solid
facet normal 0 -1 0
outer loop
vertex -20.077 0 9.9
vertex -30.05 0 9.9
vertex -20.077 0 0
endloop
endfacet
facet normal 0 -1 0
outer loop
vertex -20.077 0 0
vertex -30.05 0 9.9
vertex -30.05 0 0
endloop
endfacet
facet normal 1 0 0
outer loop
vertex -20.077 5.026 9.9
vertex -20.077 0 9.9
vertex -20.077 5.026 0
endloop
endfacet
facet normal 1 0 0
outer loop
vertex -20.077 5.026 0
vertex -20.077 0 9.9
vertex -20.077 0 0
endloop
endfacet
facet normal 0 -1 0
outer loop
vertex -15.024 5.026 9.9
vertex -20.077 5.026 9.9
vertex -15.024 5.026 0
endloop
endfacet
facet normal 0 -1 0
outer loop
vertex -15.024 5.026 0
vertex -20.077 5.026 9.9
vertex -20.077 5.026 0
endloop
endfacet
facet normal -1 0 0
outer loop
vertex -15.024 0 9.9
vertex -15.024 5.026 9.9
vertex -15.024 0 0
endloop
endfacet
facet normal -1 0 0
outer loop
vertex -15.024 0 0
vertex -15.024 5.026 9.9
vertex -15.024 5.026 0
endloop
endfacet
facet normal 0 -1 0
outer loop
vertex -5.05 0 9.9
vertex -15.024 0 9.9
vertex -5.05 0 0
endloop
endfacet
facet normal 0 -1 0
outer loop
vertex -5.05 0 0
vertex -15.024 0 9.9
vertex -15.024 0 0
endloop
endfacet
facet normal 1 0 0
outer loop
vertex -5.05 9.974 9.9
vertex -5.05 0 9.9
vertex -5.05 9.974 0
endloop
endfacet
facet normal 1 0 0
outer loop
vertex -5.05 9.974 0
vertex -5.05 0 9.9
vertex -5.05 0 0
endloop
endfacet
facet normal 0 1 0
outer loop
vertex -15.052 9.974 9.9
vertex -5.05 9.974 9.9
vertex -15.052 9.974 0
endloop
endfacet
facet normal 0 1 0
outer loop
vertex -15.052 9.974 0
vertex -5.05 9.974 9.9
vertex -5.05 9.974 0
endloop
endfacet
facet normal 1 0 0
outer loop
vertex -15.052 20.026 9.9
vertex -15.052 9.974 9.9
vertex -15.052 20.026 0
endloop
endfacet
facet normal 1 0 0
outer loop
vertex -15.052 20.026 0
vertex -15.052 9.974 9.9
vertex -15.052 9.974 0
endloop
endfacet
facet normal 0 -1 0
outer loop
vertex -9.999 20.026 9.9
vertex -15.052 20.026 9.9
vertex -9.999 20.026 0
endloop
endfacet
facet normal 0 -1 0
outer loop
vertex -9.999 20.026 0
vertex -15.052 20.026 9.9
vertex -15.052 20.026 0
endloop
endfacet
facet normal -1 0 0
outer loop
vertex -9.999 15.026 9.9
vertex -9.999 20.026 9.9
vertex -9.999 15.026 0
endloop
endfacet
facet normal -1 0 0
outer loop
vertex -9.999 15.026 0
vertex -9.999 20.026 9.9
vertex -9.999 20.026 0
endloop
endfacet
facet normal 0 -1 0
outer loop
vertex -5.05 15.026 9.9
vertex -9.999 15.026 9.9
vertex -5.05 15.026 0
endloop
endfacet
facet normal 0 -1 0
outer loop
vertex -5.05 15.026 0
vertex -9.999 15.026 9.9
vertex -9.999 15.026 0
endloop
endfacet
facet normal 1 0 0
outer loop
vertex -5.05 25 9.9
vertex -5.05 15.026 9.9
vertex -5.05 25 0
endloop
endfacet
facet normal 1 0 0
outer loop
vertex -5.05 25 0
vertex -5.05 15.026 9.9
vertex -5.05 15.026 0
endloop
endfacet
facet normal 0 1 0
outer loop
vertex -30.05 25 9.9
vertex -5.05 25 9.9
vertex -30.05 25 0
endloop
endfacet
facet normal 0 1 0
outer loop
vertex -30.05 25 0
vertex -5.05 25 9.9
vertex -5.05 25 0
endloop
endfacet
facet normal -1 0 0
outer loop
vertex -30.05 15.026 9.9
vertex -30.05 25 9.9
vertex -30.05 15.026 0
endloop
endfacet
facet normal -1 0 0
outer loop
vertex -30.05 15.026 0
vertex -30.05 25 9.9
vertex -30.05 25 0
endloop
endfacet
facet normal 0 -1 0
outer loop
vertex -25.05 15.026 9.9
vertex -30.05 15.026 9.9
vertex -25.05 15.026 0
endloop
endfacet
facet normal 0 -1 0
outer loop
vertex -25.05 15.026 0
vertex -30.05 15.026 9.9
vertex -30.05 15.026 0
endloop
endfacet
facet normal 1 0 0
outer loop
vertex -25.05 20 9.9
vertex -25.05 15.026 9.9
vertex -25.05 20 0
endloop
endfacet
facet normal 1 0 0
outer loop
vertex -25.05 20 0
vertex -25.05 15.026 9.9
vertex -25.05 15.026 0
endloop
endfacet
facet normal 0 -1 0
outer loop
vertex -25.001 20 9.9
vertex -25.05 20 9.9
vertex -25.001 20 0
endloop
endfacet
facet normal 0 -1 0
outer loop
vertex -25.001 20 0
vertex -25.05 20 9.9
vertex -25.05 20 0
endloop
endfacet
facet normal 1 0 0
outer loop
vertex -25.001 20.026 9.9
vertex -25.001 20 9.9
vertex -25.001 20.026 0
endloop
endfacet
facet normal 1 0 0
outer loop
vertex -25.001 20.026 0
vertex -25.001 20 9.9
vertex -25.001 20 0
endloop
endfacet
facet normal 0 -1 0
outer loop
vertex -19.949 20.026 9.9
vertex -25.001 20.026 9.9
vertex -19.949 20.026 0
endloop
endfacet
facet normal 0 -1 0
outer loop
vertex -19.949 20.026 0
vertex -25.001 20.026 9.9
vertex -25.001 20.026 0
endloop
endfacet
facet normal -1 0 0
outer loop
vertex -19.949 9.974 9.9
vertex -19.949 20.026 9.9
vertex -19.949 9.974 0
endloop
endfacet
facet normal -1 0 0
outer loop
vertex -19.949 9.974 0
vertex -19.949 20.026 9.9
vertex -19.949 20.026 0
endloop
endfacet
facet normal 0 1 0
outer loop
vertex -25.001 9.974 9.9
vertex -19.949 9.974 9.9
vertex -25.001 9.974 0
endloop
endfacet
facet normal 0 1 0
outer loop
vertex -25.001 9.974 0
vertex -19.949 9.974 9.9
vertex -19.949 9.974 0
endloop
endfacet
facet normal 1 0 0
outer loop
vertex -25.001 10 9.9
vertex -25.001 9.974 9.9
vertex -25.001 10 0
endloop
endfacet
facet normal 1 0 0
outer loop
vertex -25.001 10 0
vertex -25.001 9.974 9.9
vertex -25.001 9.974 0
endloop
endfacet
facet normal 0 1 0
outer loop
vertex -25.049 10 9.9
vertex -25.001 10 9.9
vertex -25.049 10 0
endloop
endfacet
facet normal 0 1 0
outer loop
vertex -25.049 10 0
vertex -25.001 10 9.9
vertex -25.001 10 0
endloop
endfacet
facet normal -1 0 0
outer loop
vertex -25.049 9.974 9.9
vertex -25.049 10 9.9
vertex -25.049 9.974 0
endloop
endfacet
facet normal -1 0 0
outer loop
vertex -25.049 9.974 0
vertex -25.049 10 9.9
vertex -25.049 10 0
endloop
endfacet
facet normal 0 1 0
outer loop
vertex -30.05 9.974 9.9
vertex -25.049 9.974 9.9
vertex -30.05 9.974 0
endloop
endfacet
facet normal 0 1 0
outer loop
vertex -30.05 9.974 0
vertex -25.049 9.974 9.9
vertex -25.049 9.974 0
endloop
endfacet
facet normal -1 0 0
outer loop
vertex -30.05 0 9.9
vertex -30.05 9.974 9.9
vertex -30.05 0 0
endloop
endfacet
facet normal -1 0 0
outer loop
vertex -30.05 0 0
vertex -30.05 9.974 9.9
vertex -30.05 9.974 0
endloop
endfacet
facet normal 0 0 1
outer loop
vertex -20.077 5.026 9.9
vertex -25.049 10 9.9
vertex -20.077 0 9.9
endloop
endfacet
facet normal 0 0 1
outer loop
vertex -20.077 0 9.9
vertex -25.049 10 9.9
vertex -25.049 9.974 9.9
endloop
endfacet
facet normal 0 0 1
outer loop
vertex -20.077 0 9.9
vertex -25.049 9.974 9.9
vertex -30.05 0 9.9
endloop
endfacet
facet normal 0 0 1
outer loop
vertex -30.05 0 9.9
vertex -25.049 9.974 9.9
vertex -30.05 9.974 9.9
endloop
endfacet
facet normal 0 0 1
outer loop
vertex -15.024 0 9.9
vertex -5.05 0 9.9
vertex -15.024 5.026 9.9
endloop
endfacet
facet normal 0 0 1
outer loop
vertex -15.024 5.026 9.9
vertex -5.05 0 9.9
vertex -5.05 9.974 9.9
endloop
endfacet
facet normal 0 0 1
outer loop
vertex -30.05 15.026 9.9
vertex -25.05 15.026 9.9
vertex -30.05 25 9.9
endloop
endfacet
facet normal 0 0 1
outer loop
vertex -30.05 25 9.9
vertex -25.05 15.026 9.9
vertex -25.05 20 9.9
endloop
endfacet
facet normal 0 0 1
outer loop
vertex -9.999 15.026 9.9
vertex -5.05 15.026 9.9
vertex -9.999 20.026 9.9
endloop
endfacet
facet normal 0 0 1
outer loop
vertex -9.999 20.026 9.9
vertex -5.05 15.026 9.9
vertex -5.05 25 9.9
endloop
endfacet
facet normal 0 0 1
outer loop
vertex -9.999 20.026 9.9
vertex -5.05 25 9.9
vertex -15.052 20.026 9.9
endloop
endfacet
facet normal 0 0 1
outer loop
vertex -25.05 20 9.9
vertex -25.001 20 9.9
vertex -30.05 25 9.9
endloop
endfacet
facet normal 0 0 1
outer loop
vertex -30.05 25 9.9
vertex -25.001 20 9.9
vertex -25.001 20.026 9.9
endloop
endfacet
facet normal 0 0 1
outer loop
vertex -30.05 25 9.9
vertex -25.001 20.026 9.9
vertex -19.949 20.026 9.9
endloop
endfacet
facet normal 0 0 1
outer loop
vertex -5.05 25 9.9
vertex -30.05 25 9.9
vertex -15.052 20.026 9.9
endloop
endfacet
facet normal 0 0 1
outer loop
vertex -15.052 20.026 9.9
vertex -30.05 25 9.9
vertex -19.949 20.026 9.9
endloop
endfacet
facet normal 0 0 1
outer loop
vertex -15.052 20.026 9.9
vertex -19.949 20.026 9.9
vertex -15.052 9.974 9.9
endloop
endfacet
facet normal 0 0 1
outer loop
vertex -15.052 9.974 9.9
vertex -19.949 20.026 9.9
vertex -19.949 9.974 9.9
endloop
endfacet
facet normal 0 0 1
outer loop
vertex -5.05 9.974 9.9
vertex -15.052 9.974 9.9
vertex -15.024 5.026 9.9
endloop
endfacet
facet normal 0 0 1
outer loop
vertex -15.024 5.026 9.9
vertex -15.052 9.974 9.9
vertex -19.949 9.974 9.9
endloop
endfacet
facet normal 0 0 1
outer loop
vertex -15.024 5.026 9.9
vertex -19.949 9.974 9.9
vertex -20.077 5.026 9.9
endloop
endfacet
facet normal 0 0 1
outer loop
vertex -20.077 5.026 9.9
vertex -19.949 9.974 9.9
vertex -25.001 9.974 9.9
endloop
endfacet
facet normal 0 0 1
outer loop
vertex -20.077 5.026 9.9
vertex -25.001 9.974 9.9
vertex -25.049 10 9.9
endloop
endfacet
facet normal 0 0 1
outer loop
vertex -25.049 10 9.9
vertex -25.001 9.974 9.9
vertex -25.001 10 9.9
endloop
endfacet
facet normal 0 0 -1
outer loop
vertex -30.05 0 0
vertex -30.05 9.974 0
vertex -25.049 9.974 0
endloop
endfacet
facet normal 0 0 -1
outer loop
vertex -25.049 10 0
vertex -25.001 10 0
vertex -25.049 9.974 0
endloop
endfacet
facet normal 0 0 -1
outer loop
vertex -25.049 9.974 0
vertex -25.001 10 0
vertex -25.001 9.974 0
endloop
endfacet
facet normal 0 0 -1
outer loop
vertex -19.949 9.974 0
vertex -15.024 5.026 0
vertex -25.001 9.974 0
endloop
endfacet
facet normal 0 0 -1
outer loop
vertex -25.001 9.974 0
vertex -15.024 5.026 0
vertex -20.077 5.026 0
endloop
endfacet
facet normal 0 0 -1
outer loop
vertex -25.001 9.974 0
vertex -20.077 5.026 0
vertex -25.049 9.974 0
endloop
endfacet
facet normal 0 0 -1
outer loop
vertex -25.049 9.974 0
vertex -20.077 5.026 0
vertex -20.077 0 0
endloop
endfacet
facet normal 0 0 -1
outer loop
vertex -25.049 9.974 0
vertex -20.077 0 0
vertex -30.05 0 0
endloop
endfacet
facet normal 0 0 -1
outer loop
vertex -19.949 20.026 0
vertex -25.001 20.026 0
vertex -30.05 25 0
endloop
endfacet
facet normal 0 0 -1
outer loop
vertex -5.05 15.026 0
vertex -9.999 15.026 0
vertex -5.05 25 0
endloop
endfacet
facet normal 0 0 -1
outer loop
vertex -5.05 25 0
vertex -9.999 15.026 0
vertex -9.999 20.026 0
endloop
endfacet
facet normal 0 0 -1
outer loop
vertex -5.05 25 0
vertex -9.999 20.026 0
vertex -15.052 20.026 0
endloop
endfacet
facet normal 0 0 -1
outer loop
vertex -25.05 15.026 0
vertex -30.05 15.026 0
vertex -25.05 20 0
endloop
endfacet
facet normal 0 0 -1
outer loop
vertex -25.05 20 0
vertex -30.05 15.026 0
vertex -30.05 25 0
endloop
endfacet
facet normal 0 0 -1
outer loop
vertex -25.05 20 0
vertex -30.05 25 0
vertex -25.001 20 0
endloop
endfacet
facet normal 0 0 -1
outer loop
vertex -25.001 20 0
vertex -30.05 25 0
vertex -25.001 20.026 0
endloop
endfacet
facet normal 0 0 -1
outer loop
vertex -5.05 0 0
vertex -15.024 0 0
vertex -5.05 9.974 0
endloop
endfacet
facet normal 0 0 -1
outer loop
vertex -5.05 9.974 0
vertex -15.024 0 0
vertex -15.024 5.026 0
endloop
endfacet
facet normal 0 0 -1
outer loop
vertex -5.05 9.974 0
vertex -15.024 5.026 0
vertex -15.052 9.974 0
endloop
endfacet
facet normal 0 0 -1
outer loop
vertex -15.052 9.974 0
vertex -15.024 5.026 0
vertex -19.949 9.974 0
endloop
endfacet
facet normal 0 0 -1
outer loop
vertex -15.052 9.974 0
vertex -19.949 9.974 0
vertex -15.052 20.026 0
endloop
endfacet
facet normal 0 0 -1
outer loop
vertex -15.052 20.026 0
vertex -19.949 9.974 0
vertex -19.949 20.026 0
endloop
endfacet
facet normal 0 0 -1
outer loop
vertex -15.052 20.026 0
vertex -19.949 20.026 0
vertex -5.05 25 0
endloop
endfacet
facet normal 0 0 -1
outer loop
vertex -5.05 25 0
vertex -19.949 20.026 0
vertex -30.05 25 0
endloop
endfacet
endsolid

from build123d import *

# Parameters (mm, degrees)
BOSS_EXTRUDE1_DEPTH = 9.899999946


with BuildPart() as part:
    # Sketch1 → Boss-Extrude1 (new body)
    with BuildSketch(Plane(origin=(0, 0, 0), x_dir=(-1, 0, 0), z_dir=(0, 0, -1))):
        Polygon((30.050000664, 0), (30.050000664, 9.973500704), (25.049001075, 9.973500704), (25.049001075, 10.000000559), (25.001000706, 10.000000559), (25.001000706, 9.974000824), (19.949001889, 9.974000824), (19.949001889, 20.025999921), (25.001000706, 20.025999921), (25.001000706, 20.000001118), (25.050001316, 20.000001118), (25.050001316, 15.026001504), (30.050000664, 15.026001504), (30.050000664, 25.000002328), (5.050000664, 25.000002328), (5.050000664, 15.026001504), (9.999000318, 15.026001504), (9.999000318, 20.025999921), (15.051501118, 20.025999921), (15.051501118, 9.973500704), (10.051000718, 9.973500704), (5.050000664, 9.973500704), (5.050000664, 0), (15.024001023, 0), (15.024001023, 5.026000479), (20.076501822, 5.026000479), (20.076501822, 0), align=None)
    extrude(amount=-BOSS_EXTRUDE1_DEPTH)


solid = part.part
